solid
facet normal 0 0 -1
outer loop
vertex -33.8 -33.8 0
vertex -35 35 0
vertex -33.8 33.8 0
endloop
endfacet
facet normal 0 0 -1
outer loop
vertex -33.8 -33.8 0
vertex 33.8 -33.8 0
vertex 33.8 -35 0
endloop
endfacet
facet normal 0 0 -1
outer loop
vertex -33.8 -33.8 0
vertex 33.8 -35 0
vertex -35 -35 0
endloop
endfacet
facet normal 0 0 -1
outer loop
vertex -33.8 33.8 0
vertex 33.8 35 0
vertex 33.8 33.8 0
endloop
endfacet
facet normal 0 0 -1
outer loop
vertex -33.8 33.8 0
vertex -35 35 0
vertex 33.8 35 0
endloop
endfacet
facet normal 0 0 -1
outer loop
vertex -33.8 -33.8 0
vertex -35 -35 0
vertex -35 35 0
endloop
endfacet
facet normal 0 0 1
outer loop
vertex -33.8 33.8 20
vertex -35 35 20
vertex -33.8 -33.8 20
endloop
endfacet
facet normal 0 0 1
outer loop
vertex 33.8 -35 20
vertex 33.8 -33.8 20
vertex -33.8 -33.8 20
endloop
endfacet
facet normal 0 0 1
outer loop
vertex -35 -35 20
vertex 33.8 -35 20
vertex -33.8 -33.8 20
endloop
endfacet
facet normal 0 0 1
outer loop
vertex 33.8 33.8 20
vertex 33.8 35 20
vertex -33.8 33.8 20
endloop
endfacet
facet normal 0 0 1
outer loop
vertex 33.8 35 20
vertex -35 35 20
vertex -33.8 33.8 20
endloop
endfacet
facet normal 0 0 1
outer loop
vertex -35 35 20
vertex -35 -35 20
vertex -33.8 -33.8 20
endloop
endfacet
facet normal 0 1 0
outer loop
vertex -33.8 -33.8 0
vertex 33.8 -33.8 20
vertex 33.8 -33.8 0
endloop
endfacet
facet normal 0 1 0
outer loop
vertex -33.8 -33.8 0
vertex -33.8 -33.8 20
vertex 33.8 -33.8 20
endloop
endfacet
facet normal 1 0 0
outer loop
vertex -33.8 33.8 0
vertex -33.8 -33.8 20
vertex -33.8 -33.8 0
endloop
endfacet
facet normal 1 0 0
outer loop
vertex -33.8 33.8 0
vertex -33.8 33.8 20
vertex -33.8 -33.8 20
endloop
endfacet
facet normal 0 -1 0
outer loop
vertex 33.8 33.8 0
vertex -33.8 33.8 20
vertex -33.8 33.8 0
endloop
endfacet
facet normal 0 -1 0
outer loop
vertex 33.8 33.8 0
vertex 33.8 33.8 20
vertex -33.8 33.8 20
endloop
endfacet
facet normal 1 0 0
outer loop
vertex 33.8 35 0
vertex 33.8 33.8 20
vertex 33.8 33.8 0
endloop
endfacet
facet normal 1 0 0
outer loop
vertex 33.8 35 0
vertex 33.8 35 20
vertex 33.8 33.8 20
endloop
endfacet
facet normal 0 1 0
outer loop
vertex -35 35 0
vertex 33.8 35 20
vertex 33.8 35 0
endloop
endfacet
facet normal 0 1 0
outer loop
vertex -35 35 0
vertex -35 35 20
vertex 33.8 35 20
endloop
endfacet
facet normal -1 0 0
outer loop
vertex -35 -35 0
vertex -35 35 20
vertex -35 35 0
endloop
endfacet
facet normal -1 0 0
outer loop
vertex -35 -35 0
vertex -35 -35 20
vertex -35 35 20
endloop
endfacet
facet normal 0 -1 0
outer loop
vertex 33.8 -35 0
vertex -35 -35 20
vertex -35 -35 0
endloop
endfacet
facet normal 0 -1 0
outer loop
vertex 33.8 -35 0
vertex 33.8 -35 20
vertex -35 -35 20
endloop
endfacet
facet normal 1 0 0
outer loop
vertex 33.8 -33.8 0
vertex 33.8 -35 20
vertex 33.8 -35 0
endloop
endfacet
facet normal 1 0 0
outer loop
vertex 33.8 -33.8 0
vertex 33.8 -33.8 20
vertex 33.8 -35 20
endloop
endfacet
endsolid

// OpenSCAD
// ============================================================
// test.scad
// 70mm x 70mm 정사각형 기준 "ㄷ"자 브라켓. 높이 20mm, 두께 1.2mm.
// X축 양수방향 벽이 열려있는 형태 (hat.scad와 동일한 관례 적용 - 확인 필요).
// ============================================================

module test() {
    outer = 70;   // 바깥 정사각형 한 변
    t     = 1.2;  // 두께
    z     = 20;   // 높이
    inner = outer - 2 * t;

    color("SteelBlue")
        linear_extrude(height = z)
            difference() {
                difference() {
                    square([outer, outer], center = true);
                    square([inner, inner], center = true);
                }
                // X축 양수방향 벽 제거
                translate([inner / 2, -outer / 2 - 0.1])
                    square([outer / 2 - inner / 2 + 0.2, outer + 0.2]);
            }
}

test();
